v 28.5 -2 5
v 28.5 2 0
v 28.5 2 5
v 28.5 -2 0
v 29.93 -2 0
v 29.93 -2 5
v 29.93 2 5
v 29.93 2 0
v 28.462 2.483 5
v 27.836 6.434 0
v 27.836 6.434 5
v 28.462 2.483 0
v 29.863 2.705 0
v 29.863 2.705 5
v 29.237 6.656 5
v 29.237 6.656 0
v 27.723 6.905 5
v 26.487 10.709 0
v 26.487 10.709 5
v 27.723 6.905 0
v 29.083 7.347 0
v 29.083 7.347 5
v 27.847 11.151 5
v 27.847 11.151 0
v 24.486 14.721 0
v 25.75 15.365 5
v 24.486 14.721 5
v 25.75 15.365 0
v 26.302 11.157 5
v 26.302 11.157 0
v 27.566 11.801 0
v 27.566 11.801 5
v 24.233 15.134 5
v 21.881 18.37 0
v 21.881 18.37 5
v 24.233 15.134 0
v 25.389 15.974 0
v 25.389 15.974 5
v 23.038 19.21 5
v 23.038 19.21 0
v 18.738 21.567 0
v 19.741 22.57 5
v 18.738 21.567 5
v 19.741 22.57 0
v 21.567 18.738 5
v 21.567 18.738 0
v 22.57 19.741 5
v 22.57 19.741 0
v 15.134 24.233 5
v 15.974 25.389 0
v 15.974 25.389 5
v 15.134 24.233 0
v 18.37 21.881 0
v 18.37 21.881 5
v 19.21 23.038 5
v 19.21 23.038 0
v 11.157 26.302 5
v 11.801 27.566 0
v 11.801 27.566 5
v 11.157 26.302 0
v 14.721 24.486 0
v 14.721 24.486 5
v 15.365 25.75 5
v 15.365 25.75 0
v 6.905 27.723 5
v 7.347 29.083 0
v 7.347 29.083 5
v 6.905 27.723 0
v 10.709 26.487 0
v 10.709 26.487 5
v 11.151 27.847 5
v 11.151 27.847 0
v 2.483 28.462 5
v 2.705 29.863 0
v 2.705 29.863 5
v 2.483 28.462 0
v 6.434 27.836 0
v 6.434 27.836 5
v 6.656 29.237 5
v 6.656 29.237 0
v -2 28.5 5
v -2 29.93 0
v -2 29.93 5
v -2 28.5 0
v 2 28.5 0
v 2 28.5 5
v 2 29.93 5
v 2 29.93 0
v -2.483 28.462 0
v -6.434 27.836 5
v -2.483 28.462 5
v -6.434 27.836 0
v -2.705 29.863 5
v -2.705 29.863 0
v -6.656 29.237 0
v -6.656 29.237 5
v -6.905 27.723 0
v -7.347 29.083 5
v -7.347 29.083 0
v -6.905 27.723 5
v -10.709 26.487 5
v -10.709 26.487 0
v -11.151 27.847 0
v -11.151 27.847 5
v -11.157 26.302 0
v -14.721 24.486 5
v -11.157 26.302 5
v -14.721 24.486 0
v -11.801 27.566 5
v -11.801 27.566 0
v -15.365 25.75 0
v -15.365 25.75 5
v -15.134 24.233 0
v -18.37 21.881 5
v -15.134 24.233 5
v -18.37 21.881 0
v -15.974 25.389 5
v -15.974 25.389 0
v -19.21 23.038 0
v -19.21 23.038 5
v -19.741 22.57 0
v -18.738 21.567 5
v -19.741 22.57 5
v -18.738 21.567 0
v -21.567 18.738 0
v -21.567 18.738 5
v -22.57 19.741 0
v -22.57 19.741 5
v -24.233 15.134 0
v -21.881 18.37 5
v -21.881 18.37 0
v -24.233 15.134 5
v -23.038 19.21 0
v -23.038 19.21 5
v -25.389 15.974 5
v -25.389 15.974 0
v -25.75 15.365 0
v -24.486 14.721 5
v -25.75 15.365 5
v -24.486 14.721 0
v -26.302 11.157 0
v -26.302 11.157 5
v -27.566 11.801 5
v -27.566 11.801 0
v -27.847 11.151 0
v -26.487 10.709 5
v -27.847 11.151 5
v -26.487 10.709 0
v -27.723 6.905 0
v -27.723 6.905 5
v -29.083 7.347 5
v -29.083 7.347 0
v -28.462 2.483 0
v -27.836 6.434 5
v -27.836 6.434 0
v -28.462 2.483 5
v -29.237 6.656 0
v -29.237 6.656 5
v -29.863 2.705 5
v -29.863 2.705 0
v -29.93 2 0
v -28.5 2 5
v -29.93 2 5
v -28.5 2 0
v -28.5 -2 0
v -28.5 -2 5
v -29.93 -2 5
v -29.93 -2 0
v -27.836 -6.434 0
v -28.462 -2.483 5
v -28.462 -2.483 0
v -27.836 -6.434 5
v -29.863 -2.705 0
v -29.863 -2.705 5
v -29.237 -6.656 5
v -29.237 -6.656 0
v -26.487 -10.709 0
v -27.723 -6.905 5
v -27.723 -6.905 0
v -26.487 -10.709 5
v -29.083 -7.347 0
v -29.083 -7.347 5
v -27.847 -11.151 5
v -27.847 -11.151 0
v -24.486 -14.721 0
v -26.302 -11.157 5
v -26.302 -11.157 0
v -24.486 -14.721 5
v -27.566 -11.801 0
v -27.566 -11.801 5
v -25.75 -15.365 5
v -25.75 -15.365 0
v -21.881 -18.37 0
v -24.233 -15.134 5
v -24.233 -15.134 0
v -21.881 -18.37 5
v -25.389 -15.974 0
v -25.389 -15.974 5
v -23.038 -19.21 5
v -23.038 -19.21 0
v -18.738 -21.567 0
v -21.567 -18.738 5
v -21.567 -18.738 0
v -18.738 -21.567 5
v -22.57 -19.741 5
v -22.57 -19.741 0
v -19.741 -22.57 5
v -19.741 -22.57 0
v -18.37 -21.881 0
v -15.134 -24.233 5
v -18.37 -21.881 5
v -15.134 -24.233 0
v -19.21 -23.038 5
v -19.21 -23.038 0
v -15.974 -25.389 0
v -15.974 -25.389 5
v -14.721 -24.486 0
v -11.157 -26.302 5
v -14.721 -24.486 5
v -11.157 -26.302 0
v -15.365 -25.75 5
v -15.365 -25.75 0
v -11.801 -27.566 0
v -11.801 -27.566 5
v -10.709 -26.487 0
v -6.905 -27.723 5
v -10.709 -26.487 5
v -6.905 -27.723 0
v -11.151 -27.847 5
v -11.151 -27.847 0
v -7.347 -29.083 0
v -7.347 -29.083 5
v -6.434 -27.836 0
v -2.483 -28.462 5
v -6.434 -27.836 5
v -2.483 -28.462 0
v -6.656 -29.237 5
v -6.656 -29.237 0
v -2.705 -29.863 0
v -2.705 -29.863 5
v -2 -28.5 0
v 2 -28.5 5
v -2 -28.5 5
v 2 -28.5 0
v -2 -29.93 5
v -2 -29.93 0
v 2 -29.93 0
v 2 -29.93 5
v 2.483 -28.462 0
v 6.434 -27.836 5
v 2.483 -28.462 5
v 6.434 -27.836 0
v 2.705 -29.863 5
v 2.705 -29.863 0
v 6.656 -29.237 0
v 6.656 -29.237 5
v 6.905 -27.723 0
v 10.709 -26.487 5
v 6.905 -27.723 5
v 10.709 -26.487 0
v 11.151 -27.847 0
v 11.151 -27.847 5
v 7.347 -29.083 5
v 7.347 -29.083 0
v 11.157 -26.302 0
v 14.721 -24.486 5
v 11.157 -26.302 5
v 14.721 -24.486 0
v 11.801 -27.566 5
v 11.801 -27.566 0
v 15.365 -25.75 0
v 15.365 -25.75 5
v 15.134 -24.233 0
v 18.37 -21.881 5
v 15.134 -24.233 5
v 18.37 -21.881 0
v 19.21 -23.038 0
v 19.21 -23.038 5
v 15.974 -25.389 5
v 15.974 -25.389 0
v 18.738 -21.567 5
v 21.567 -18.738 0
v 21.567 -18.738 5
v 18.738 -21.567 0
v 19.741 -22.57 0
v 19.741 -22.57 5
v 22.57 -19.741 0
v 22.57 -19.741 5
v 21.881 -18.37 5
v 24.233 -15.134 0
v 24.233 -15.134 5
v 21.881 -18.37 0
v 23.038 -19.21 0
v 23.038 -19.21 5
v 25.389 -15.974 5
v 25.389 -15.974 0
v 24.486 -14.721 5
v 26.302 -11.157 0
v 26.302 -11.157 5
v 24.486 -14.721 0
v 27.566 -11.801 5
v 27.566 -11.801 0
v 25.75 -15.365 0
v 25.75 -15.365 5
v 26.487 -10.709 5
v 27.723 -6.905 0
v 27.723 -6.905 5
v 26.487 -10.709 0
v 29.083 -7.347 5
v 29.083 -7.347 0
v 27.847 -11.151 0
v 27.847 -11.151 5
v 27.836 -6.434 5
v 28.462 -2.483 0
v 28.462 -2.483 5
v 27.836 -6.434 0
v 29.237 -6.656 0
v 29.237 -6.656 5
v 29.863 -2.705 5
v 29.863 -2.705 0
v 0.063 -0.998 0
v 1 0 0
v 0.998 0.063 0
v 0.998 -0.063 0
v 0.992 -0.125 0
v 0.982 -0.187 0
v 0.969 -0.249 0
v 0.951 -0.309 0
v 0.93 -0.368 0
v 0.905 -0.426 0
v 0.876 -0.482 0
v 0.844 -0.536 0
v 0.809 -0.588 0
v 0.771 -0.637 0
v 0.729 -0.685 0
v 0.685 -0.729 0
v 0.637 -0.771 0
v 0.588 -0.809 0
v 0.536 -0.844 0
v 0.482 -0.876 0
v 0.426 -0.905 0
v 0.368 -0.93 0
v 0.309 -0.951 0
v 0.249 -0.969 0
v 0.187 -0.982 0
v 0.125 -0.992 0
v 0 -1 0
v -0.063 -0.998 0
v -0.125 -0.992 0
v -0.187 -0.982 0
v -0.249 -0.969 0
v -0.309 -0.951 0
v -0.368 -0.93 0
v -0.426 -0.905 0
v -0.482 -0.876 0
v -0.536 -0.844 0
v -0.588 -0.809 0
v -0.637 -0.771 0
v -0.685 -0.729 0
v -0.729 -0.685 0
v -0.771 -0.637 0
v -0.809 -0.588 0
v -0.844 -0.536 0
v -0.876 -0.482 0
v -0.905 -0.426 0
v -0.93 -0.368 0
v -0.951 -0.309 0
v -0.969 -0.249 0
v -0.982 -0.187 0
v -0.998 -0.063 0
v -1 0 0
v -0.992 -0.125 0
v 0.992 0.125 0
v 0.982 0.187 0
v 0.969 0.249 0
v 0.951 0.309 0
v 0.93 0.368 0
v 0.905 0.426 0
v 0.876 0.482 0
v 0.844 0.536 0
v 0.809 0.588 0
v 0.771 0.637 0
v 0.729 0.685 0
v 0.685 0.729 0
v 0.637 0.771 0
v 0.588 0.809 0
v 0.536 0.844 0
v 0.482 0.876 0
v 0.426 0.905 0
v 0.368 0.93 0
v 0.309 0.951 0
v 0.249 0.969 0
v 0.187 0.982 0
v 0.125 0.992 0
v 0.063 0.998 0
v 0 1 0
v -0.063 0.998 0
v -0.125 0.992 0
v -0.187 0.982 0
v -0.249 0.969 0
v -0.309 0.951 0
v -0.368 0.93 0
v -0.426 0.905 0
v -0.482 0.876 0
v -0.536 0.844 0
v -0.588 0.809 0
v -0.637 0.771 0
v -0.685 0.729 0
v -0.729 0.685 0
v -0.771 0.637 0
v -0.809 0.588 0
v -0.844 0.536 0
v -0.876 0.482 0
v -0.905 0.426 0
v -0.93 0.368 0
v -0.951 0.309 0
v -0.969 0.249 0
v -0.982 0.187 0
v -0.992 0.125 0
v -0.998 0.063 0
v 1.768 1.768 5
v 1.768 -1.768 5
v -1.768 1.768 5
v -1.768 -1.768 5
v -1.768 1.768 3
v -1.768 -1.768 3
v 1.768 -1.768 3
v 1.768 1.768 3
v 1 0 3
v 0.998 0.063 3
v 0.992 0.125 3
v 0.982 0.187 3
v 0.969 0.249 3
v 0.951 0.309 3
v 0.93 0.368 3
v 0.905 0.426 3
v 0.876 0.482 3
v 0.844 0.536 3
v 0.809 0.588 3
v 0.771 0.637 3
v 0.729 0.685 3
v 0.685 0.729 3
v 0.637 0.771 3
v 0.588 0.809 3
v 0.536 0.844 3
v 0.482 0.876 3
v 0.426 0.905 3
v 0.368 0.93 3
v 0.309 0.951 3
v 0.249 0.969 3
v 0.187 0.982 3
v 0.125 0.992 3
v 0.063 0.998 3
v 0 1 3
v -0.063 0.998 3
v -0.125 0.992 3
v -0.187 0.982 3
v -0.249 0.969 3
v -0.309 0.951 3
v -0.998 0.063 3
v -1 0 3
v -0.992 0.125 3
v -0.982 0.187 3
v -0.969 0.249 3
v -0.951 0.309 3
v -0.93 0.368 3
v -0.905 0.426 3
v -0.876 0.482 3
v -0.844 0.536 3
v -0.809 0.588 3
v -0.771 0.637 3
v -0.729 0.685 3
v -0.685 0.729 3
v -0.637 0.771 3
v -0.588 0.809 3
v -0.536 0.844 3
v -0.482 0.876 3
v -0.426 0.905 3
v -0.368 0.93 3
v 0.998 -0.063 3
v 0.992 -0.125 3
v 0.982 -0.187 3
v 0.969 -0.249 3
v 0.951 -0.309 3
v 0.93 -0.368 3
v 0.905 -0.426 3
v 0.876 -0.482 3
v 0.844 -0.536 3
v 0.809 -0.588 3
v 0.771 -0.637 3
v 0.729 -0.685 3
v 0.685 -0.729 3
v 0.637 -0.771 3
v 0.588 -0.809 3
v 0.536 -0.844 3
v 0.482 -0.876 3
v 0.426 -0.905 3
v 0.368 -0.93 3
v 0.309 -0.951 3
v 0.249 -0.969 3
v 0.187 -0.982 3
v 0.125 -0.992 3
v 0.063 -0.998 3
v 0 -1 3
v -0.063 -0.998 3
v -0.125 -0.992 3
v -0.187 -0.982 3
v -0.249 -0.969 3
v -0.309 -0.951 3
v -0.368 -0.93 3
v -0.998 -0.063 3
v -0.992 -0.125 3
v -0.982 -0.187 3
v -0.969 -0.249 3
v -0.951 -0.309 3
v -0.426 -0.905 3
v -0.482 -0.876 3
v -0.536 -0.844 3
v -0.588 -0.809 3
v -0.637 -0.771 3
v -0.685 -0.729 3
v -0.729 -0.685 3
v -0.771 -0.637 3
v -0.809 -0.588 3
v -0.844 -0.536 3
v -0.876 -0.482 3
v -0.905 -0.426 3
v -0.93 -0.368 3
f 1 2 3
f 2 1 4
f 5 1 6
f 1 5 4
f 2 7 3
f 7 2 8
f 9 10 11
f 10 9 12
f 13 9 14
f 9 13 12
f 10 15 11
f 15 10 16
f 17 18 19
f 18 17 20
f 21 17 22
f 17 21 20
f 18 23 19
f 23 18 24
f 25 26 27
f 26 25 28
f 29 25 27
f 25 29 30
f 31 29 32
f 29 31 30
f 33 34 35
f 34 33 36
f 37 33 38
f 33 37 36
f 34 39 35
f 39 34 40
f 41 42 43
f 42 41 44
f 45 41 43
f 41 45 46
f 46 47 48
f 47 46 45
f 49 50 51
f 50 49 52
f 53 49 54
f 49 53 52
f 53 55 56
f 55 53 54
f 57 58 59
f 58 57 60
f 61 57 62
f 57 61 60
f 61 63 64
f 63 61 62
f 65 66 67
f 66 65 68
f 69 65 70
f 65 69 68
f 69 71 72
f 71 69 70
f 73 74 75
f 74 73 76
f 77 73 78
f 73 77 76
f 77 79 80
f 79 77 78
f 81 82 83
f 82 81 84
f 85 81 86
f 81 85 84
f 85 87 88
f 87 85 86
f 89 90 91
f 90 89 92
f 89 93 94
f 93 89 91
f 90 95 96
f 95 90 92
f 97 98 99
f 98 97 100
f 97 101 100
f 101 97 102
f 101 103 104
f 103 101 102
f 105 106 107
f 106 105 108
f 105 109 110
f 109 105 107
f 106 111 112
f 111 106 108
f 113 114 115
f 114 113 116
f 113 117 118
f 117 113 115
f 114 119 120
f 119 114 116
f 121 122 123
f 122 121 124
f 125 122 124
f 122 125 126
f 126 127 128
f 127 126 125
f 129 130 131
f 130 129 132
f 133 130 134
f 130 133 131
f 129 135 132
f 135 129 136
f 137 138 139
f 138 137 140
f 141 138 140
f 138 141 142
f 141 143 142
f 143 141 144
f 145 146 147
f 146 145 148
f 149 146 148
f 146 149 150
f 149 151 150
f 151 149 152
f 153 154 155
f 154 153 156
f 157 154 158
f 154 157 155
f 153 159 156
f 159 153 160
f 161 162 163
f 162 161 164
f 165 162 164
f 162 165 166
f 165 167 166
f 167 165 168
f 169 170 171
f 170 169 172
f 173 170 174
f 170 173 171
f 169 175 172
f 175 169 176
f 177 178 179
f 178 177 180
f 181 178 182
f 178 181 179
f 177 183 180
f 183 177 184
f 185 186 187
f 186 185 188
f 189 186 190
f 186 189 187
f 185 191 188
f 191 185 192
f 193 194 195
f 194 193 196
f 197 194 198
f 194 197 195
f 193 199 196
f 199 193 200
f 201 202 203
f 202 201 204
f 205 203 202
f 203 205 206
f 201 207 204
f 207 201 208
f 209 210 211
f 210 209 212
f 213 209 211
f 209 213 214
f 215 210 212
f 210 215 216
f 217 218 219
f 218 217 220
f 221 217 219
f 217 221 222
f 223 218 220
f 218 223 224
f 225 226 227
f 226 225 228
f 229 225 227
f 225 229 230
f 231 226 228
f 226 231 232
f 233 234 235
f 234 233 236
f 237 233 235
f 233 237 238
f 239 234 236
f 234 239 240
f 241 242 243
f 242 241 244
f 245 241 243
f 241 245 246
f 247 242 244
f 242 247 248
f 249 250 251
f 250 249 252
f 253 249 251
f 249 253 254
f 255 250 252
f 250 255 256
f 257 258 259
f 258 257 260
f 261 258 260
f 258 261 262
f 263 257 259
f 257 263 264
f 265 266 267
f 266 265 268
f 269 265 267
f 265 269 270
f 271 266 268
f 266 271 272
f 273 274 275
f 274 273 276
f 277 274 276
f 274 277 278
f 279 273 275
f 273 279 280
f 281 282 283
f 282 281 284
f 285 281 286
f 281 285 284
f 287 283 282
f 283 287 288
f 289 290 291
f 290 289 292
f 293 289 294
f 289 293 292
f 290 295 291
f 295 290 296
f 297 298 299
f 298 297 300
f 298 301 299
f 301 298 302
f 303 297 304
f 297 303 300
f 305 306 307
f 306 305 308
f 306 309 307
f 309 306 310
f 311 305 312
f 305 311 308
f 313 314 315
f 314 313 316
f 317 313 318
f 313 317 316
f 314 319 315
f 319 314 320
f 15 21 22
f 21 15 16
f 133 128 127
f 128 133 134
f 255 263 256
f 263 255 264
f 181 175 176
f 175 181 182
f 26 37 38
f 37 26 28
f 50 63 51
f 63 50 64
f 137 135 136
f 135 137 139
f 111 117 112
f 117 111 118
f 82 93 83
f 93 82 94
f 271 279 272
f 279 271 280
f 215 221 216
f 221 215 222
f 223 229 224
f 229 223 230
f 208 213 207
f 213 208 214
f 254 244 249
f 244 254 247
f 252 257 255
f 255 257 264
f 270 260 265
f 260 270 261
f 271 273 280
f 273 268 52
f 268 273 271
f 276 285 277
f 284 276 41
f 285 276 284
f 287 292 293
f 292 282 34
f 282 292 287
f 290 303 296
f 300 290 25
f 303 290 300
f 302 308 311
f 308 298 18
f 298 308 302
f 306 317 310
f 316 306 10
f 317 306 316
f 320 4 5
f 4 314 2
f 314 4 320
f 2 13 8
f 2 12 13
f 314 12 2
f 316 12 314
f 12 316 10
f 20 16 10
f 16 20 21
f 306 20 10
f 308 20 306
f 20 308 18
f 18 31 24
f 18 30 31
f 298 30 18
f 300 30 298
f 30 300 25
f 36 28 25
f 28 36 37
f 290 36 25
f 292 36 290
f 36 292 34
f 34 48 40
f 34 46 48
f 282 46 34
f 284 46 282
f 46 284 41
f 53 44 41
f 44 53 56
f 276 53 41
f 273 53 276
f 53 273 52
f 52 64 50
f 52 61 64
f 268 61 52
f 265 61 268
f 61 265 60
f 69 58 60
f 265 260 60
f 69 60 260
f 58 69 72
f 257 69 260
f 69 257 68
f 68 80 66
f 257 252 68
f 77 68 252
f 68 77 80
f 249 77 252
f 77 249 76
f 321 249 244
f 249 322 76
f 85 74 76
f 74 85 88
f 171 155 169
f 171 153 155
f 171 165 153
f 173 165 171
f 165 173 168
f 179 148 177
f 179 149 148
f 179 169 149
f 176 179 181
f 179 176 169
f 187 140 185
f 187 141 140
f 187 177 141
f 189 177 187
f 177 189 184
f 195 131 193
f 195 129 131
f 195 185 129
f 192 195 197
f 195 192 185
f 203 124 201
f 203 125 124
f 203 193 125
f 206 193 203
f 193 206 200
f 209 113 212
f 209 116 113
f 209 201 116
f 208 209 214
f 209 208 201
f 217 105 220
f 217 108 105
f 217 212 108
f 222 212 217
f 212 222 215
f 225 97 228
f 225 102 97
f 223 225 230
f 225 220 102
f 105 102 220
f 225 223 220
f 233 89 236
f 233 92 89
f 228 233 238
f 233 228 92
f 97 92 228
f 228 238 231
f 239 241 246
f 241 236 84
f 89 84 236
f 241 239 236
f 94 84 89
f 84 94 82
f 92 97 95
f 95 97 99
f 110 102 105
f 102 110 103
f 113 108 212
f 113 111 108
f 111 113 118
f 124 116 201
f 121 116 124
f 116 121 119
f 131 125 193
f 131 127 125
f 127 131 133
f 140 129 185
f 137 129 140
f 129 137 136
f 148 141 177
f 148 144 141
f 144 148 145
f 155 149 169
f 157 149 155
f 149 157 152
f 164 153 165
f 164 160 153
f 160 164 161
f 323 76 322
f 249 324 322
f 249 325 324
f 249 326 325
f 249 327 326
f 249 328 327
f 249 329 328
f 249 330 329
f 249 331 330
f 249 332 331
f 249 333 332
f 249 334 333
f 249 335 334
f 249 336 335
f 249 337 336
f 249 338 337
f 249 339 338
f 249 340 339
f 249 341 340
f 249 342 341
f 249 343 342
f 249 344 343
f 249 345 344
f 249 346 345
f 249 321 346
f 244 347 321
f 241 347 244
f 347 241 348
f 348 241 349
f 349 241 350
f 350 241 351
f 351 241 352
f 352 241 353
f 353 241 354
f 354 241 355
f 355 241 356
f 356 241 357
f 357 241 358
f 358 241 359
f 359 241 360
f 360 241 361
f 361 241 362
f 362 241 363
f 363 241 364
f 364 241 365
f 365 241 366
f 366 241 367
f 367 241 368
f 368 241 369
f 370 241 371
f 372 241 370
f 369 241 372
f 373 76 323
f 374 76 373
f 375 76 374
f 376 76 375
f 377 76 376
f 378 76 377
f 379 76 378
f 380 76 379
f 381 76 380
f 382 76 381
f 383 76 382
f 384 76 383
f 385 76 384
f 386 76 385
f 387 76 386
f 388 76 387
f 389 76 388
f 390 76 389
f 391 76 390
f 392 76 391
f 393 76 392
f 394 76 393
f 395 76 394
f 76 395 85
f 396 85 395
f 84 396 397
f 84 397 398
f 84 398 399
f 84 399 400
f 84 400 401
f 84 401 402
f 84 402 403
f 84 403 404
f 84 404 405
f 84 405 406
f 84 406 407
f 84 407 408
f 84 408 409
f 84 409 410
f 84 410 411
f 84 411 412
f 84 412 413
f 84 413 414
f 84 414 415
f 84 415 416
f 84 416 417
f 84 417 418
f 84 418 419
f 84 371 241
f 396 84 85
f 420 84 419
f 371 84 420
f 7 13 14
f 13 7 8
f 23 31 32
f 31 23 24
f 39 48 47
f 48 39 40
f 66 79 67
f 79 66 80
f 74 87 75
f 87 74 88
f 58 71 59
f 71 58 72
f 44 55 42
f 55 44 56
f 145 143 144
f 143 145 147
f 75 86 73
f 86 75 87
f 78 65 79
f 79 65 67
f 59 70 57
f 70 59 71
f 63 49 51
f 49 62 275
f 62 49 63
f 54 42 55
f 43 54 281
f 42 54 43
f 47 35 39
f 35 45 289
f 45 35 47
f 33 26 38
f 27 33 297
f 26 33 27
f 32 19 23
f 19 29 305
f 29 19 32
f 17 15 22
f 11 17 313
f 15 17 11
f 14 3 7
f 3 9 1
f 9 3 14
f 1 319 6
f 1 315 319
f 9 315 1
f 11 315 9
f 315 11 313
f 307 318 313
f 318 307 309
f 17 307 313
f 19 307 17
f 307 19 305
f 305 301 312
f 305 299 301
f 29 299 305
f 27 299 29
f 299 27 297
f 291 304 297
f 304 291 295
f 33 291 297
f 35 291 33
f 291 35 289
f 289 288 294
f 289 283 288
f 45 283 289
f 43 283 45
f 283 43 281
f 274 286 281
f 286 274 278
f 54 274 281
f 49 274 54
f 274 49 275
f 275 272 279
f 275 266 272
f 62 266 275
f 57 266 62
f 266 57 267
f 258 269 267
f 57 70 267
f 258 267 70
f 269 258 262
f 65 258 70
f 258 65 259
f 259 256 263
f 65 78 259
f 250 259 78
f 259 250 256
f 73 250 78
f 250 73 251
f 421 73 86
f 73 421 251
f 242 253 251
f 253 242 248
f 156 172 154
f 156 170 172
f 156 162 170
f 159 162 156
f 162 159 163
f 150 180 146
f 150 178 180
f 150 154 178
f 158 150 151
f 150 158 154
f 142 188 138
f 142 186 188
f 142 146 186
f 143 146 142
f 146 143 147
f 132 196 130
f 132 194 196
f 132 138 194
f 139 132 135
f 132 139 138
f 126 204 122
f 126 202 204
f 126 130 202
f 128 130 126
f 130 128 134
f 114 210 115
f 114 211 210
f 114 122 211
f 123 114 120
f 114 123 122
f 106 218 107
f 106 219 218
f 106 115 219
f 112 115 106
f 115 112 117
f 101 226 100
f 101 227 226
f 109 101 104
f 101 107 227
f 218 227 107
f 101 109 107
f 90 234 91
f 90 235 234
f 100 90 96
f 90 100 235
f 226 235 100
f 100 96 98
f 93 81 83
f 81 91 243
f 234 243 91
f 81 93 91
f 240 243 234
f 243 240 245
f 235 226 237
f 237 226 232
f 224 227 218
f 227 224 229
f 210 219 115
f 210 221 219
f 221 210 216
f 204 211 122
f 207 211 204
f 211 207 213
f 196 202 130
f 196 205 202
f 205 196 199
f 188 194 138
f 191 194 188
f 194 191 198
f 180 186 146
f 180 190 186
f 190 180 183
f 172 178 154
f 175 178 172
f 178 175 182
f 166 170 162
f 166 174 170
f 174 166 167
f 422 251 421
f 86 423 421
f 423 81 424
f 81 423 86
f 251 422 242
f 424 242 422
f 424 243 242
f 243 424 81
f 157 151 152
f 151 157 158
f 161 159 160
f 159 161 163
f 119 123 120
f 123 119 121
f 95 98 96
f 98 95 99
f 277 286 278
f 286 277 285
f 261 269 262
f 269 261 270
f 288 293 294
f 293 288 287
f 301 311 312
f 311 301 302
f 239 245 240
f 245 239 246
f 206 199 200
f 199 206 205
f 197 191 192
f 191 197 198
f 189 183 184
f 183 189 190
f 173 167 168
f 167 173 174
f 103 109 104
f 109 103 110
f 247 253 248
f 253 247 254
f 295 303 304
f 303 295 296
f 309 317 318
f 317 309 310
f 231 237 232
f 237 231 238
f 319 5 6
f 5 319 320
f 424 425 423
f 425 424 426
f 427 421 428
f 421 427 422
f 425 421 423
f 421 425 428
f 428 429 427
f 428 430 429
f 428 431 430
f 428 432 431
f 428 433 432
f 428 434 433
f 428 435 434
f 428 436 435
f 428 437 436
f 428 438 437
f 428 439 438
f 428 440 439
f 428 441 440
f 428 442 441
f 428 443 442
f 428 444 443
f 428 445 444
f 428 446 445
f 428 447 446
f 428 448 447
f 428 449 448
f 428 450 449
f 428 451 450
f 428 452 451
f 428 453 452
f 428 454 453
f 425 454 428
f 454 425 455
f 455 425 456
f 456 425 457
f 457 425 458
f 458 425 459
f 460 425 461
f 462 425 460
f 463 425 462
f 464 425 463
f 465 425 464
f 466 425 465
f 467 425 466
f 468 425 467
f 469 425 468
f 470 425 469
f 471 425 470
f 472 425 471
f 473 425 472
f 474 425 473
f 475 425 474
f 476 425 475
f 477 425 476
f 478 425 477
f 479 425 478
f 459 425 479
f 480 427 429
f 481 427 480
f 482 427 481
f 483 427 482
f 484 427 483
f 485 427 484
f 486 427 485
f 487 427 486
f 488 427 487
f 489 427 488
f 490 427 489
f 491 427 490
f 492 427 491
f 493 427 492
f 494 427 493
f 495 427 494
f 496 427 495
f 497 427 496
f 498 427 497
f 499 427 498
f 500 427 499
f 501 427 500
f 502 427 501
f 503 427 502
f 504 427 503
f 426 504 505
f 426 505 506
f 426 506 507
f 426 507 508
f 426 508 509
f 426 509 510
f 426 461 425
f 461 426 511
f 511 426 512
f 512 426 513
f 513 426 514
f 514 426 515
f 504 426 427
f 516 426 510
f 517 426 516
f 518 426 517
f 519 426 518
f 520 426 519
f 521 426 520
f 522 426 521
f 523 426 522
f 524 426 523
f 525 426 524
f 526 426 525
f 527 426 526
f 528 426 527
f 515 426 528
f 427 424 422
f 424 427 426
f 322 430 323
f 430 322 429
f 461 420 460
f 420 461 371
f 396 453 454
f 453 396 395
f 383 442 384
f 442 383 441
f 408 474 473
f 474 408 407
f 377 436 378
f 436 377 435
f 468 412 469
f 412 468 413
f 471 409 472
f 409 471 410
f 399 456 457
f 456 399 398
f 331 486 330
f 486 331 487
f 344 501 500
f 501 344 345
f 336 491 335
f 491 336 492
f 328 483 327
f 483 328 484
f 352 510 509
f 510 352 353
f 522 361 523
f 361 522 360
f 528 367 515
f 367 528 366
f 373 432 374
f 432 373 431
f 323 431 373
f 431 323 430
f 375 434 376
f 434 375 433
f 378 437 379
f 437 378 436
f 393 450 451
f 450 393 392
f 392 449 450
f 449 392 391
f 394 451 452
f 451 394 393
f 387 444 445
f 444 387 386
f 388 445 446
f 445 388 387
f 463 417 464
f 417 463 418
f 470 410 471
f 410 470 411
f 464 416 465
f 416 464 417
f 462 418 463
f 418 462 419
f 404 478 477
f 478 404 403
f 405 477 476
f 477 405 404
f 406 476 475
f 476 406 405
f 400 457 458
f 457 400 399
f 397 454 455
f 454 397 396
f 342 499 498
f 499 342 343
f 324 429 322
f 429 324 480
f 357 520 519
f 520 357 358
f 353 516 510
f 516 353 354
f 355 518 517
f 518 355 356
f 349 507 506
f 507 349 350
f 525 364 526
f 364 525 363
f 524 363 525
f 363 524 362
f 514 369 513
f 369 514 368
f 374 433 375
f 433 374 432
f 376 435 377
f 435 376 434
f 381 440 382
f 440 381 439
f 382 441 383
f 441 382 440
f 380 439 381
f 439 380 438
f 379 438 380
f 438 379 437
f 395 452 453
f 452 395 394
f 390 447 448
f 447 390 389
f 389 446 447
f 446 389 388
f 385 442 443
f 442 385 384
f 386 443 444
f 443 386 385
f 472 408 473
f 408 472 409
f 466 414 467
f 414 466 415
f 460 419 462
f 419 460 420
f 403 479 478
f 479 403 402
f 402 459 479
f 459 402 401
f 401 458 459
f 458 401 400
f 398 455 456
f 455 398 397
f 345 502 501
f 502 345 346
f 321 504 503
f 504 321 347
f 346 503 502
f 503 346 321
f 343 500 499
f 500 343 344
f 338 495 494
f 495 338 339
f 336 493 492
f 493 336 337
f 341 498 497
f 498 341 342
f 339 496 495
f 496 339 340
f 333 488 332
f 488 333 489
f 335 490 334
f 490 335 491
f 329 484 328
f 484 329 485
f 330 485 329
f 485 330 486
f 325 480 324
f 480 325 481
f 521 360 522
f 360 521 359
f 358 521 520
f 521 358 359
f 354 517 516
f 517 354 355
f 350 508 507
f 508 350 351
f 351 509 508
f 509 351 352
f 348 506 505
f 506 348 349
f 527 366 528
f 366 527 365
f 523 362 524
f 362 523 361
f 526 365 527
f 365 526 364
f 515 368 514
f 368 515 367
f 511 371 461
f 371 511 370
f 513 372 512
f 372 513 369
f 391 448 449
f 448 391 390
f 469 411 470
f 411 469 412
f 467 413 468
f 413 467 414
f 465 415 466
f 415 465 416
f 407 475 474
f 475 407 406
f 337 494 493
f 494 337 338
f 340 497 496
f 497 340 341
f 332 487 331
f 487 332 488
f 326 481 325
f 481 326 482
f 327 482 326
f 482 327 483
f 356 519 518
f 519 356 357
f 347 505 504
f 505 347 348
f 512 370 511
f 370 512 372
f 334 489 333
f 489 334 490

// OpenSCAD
// Title: Parametric Servo Wheel with Tread (Improved Fit)
// Description: A wheel with a simple tread pattern, designed to be mounted on a standard servo horn (like SG90). This version has smaller mounting holes and a larger recess for the servo horn for an easier fit.
// Author: AI Assistant
// Date: 2023-10-27 (Updated)
// License: MIT

/*
 * =====================================================================
 * Параметры для настройки (Parameters for Customization)
 * =====================================================================
 */

// --- Основные параметры колеса (Main Wheel Parameters) ---
wheel_diameter = 60;    // [mm] Общий диаметр колеса.
wheel_thickness = 5;     // [mm] Общая толщина колеса.

// --- Параметры протектора (Tread Parameters) ---
tread_grooves = 40;      // Количество "зубцов" или выемок на протекторе. Поставьте 0, чтобы убрать протектор.
tread_groove_depth = 1.5; // [mm] Глубина выемки протектора.
tread_groove_width = 4;  // [mm] Ширина каждой выемки.

// --- Параметры крепления (Mounting Parameters) ---
// Расстояние между центрами двух крепёжных отверстий на серво-качалке.
mount_hole_distance = 32; // [mm] 
// Диаметр крепёжных отверстий в колесе.
mount_hole_diameter = 1; // [mm]  <<< ИЗМЕНЕНО: Уменьшено до 1 мм по вашему запросу.

// --- Параметры выемки под серво-качалку (Servo Horn Recess Parameters) ---
// Эти размеры основаны на стандартной качалке для SG90. Возможно, их придётся немного подогнать.

// Глубина, на которую качалка будет "утоплена" в колесо.
servo_horn_recess_depth = 2; // [mm] 
// Диаметр центрального отверстия для вала сервопривода.
servo_spline_hole_diameter = 2;  // [mm] 
// Диаметр центральной, круглой части серво-качалки.
servo_horn_hub_diameter = 8.5;   // [mm] <<< ИЗМЕНЕНО: Увеличено для более свободной посадки.
// Ширина "руки" серво-качалки.
servo_horn_arm_width = 6.5;      // [mm] <<< ИЗМЕНЕНО: Увеличено для более свободной посадки.

axle_diameter = 5;    // [mm] Диаметр основной цилиндрической части.
square_head_side = axle_diameter / sqrt(2);

// --- Качество модели (Model Quality) ---
$fn = 100; // Количество сегментов для гладких окружностей.

/*
 * =====================================================================
 * Модули (Modules)
 * =====================================================================
 * Здесь код разбит на логические части для удобства чтения.
 */

// Модуль для создания основного тела колеса
module wheel_body() {
    // Создаем простой цилиндр, который будет основой колеса.
    cylinder(d = wheel_diameter, h = wheel_thickness);
}

// Модуль для создания протектора (выемок на поверхности)
module tread_cutter() {
    // Если количество выемок больше нуля, создаем их.
    if (tread_grooves > 0) {
        // Цикл для создания каждой выемки по окружности
        for (i = [0 : 360/tread_grooves : 359]) {
            rotate([0, 0, i]) {
                // Располагаем режущий куб на краю колеса.
                // Он смещён так, чтобы вырезать паз снаружи внутрь.
                // +1 и -1 по оси Z нужны для гарантированного чистого вырезания по всей толщине.
                translate([wheel_diameter/2 - tread_groove_depth, -tread_groove_width/2, -1]) {
                    cube([tread_groove_depth + 1, tread_groove_width, wheel_thickness + 2]);
                }
            }
        }
    }
}


// Модуль для создания выемки под серво-качалку
module servo_horn_cutout() {
    // Высота режущего объекта (чуть больше глубины для чистого выреза)
    cutter_h = servo_horn_recess_depth + 1;
    
    // Сдвигаем режущий объект вверх, чтобы он вырезал углубление с верхней стороны колеса.
    translate([-square_head_side/2, -square_head_side/2, wheel_thickness - servo_horn_recess_depth]) {
        // Используем hull() для создания формы, повторяющей серво-качалку.
        cube(square_head_side);
    }
}

// Модуль для создания всех сквозных отверстий
module all_holes() {
    // Делаем цилиндры для вырезания отверстий длиннее толщины колеса,
    // чтобы гарантировать сквозное прохождение.
    hole_h = wheel_thickness + 2;
    
    // Сдвигаем все отверстия в центр толщины колеса по оси Z для вырезания.
    translate([0, 0, wheel_thickness / 2]) {
        // 1. Центральное отверстие для вала сервопривода
        cylinder(d = servo_spline_hole_diameter, h = hole_h, center = true);
        
        // 2. Крепёжное отверстие №1
        *translate([mount_hole_distance / 2, 0, 0])
            cylinder(d = mount_hole_diameter, h = hole_h, center = true);
        
        // 3. Крепёжное отверстие №2
        *translate([-mount_hole_distance / 2, 0, 0])
            cylinder(d = mount_hole_diameter, h = hole_h, center = true);
    }
}

/*
 * =====================================================================
 * Основной код (Main Code)
 * =====================================================================
 * Собираем финальную модель, вычитая из основного тела все вырезы.
 */

difference() {
    // 1. Создаём основное тело колеса
    wheel_body();
    
    // 2. Вырезаем протектор
    tread_cutter();
    
    // 3. Вычитаем из него выемку под серво-качалку
    servo_horn_cutout();
    
    // 4. Вычитаем все сквозные отверстия
    all_holes();
}
